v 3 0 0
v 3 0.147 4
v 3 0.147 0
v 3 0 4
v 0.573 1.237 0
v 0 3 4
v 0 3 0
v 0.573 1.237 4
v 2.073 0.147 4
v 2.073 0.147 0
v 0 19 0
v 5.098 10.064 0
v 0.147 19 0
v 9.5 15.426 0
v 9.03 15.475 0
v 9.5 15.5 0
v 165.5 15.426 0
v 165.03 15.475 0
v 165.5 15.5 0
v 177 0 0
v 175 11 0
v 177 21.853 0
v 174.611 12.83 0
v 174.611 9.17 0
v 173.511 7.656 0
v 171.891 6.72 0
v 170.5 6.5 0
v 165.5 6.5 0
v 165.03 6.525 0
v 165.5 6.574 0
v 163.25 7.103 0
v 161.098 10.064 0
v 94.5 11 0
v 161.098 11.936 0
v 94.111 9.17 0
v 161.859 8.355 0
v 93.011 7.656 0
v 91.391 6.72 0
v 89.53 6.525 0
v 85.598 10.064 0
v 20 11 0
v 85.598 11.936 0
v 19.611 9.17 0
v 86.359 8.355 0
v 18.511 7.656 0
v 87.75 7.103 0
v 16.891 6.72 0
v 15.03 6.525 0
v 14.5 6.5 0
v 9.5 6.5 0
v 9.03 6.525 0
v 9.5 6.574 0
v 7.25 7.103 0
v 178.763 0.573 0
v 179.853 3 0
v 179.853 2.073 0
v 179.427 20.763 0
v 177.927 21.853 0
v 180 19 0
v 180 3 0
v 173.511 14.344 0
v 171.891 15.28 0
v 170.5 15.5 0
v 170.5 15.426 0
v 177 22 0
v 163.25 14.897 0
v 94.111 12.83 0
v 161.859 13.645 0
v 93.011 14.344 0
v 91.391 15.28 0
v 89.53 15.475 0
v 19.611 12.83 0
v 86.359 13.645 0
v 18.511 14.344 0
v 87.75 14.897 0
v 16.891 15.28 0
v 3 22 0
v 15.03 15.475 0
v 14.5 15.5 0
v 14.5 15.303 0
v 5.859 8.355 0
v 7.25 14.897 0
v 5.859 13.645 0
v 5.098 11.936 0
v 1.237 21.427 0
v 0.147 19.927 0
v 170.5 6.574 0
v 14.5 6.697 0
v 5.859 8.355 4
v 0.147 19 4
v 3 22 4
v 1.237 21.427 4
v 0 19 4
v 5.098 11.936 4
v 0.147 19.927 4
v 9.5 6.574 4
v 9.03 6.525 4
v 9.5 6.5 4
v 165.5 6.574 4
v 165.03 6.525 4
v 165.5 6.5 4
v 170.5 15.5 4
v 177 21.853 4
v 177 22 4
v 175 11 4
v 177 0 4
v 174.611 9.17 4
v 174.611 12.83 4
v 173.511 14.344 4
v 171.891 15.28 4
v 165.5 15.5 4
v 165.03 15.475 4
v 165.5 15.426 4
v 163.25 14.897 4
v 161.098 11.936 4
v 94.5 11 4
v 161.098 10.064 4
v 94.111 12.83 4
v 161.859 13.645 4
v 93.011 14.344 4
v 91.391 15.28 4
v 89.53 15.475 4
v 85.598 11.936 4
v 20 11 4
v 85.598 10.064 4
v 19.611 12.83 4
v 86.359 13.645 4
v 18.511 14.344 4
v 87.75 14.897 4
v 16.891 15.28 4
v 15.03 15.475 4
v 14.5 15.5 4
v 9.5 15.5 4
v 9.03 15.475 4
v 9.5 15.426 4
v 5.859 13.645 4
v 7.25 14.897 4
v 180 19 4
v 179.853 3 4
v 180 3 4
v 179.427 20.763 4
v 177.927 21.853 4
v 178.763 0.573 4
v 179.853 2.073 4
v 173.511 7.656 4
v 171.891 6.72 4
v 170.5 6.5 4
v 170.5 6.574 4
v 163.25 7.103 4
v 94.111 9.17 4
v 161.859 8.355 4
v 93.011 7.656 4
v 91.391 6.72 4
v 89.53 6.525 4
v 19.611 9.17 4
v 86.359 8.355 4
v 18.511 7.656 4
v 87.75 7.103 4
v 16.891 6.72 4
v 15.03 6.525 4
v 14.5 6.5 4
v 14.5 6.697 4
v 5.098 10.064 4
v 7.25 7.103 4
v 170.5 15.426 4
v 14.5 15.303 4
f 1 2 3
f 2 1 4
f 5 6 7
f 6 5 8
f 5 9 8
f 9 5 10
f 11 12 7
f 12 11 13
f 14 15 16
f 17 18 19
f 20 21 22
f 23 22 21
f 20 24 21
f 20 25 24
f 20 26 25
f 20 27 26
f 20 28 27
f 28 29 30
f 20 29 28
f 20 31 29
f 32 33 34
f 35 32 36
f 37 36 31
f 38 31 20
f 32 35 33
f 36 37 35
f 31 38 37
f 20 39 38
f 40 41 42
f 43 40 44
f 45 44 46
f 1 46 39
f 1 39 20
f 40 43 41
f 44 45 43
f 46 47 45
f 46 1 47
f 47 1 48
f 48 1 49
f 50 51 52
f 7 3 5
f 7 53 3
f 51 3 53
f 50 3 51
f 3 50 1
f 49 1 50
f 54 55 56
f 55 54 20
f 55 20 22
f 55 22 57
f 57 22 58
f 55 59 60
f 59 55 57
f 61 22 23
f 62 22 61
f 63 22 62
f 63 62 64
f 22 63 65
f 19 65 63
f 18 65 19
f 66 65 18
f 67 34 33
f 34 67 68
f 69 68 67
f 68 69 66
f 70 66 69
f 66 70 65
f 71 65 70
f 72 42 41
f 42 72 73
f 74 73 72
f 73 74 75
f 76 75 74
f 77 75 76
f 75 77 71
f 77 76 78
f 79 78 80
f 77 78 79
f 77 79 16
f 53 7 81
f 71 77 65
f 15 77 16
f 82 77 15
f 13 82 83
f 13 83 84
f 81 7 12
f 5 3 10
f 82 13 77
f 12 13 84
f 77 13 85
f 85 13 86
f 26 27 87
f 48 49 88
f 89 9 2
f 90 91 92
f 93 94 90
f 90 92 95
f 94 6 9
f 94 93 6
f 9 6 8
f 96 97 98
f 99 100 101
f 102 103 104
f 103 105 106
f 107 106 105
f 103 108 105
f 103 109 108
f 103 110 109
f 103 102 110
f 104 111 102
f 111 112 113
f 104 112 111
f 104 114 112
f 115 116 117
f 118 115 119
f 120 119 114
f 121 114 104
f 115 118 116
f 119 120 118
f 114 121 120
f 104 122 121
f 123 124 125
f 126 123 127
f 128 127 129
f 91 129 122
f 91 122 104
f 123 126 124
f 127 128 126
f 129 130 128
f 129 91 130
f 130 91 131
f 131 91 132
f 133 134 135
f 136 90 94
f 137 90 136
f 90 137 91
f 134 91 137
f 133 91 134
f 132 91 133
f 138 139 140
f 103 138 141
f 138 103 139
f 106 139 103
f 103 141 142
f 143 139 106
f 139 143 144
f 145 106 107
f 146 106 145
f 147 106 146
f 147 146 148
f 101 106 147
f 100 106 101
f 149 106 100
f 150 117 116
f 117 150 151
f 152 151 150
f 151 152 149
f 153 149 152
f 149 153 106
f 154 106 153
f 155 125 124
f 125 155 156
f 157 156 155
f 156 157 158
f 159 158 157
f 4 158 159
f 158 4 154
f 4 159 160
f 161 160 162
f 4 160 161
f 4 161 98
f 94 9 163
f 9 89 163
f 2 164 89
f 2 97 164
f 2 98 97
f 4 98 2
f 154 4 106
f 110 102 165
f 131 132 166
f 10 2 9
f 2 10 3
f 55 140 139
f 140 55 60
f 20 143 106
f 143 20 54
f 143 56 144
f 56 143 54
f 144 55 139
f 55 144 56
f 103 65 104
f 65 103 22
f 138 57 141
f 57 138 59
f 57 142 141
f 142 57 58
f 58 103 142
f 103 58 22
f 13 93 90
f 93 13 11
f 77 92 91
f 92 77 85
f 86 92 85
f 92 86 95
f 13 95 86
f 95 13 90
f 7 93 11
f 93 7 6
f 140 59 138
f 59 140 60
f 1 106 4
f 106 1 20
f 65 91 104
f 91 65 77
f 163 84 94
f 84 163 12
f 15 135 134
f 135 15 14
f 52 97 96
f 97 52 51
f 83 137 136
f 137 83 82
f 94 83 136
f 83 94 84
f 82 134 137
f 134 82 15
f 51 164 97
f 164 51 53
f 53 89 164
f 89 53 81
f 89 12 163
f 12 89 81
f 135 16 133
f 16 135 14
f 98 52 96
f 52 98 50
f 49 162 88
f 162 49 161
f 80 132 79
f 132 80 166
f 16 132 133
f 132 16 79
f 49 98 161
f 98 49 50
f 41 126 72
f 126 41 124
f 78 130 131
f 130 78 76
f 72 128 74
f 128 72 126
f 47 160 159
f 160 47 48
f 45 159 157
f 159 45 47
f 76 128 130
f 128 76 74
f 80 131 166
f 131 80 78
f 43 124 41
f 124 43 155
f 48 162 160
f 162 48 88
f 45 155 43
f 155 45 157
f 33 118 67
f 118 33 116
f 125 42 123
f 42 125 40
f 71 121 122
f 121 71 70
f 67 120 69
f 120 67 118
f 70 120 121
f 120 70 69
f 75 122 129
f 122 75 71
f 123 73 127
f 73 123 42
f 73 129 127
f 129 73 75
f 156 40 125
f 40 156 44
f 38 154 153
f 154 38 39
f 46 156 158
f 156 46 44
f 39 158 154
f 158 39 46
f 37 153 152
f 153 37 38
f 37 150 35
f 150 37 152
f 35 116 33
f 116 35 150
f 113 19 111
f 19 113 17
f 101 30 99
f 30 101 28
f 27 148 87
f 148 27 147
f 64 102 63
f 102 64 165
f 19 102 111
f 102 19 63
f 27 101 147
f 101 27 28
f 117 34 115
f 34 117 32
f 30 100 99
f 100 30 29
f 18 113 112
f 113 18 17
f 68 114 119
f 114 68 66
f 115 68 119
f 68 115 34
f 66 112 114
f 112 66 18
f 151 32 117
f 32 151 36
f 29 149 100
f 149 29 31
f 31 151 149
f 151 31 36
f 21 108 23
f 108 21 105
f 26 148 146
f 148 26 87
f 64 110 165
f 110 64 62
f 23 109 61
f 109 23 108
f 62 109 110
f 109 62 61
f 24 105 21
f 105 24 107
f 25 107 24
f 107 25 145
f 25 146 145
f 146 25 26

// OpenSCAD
plate_height = 4;

difference(){
    roundedcube (180, 22, plate_height, 3);
    // mid hole
    translate([9.5,11,0]) cylinder(plate_height+1,4.5,4.5);
    //left hole
    translate([9.5,6.5,0]) cube([5,9,plate_height+1]);
    translate([15.5,11,0]) cylinder(plate_height+1,4.5,4.5);
    translate([90,11,0]) cylinder(plate_height+1,4.5,4.5);
    //right hole
    translate([165.5,6.5,0]) cube([5,9,plate_height+1]);
    translate([165.5,11,0]) cylinder(plate_height+1,4.5,4.5);
    translate([170.5,11,0]) cylinder(plate_height+1,4.5,4.5);
}
module roundedcube(xx, yy, height, radius) {

difference(){

    cube([xx,yy,height]);

    difference(){
        translate([-.5,-.5,-.2])
        cube([radius+.5,radius+.5,height+.5]);

        translate([radius,radius,height/2])
        cylinder(height,radius,radius,true);
    }
    translate([xx,0,0])
    rotate(90)
    difference(){
        translate([-.5,-.5,-.2])
        cube([radius+.5,radius+.5,height+.5]);

        translate([radius,radius,height/2])
        cylinder(height,radius,radius,true);
    }

    translate([xx,yy,0])
    rotate(180)
    difference(){
        translate([-.5,-.5,-.2])
        cube([radius+.5,radius+.5,height+.5]);

        translate([radius,radius,height/2])
        cylinder(height,radius,radius,true);
    }

    translate([0,yy,0])
    rotate(270)
    difference(){
        translate([-.5,-.5,-.2])
        cube([radius+.5,radius+.5,height+.5]);

        translate([radius,radius,height/2])
        cylinder(height,radius,radius,true);
    }
}
}
